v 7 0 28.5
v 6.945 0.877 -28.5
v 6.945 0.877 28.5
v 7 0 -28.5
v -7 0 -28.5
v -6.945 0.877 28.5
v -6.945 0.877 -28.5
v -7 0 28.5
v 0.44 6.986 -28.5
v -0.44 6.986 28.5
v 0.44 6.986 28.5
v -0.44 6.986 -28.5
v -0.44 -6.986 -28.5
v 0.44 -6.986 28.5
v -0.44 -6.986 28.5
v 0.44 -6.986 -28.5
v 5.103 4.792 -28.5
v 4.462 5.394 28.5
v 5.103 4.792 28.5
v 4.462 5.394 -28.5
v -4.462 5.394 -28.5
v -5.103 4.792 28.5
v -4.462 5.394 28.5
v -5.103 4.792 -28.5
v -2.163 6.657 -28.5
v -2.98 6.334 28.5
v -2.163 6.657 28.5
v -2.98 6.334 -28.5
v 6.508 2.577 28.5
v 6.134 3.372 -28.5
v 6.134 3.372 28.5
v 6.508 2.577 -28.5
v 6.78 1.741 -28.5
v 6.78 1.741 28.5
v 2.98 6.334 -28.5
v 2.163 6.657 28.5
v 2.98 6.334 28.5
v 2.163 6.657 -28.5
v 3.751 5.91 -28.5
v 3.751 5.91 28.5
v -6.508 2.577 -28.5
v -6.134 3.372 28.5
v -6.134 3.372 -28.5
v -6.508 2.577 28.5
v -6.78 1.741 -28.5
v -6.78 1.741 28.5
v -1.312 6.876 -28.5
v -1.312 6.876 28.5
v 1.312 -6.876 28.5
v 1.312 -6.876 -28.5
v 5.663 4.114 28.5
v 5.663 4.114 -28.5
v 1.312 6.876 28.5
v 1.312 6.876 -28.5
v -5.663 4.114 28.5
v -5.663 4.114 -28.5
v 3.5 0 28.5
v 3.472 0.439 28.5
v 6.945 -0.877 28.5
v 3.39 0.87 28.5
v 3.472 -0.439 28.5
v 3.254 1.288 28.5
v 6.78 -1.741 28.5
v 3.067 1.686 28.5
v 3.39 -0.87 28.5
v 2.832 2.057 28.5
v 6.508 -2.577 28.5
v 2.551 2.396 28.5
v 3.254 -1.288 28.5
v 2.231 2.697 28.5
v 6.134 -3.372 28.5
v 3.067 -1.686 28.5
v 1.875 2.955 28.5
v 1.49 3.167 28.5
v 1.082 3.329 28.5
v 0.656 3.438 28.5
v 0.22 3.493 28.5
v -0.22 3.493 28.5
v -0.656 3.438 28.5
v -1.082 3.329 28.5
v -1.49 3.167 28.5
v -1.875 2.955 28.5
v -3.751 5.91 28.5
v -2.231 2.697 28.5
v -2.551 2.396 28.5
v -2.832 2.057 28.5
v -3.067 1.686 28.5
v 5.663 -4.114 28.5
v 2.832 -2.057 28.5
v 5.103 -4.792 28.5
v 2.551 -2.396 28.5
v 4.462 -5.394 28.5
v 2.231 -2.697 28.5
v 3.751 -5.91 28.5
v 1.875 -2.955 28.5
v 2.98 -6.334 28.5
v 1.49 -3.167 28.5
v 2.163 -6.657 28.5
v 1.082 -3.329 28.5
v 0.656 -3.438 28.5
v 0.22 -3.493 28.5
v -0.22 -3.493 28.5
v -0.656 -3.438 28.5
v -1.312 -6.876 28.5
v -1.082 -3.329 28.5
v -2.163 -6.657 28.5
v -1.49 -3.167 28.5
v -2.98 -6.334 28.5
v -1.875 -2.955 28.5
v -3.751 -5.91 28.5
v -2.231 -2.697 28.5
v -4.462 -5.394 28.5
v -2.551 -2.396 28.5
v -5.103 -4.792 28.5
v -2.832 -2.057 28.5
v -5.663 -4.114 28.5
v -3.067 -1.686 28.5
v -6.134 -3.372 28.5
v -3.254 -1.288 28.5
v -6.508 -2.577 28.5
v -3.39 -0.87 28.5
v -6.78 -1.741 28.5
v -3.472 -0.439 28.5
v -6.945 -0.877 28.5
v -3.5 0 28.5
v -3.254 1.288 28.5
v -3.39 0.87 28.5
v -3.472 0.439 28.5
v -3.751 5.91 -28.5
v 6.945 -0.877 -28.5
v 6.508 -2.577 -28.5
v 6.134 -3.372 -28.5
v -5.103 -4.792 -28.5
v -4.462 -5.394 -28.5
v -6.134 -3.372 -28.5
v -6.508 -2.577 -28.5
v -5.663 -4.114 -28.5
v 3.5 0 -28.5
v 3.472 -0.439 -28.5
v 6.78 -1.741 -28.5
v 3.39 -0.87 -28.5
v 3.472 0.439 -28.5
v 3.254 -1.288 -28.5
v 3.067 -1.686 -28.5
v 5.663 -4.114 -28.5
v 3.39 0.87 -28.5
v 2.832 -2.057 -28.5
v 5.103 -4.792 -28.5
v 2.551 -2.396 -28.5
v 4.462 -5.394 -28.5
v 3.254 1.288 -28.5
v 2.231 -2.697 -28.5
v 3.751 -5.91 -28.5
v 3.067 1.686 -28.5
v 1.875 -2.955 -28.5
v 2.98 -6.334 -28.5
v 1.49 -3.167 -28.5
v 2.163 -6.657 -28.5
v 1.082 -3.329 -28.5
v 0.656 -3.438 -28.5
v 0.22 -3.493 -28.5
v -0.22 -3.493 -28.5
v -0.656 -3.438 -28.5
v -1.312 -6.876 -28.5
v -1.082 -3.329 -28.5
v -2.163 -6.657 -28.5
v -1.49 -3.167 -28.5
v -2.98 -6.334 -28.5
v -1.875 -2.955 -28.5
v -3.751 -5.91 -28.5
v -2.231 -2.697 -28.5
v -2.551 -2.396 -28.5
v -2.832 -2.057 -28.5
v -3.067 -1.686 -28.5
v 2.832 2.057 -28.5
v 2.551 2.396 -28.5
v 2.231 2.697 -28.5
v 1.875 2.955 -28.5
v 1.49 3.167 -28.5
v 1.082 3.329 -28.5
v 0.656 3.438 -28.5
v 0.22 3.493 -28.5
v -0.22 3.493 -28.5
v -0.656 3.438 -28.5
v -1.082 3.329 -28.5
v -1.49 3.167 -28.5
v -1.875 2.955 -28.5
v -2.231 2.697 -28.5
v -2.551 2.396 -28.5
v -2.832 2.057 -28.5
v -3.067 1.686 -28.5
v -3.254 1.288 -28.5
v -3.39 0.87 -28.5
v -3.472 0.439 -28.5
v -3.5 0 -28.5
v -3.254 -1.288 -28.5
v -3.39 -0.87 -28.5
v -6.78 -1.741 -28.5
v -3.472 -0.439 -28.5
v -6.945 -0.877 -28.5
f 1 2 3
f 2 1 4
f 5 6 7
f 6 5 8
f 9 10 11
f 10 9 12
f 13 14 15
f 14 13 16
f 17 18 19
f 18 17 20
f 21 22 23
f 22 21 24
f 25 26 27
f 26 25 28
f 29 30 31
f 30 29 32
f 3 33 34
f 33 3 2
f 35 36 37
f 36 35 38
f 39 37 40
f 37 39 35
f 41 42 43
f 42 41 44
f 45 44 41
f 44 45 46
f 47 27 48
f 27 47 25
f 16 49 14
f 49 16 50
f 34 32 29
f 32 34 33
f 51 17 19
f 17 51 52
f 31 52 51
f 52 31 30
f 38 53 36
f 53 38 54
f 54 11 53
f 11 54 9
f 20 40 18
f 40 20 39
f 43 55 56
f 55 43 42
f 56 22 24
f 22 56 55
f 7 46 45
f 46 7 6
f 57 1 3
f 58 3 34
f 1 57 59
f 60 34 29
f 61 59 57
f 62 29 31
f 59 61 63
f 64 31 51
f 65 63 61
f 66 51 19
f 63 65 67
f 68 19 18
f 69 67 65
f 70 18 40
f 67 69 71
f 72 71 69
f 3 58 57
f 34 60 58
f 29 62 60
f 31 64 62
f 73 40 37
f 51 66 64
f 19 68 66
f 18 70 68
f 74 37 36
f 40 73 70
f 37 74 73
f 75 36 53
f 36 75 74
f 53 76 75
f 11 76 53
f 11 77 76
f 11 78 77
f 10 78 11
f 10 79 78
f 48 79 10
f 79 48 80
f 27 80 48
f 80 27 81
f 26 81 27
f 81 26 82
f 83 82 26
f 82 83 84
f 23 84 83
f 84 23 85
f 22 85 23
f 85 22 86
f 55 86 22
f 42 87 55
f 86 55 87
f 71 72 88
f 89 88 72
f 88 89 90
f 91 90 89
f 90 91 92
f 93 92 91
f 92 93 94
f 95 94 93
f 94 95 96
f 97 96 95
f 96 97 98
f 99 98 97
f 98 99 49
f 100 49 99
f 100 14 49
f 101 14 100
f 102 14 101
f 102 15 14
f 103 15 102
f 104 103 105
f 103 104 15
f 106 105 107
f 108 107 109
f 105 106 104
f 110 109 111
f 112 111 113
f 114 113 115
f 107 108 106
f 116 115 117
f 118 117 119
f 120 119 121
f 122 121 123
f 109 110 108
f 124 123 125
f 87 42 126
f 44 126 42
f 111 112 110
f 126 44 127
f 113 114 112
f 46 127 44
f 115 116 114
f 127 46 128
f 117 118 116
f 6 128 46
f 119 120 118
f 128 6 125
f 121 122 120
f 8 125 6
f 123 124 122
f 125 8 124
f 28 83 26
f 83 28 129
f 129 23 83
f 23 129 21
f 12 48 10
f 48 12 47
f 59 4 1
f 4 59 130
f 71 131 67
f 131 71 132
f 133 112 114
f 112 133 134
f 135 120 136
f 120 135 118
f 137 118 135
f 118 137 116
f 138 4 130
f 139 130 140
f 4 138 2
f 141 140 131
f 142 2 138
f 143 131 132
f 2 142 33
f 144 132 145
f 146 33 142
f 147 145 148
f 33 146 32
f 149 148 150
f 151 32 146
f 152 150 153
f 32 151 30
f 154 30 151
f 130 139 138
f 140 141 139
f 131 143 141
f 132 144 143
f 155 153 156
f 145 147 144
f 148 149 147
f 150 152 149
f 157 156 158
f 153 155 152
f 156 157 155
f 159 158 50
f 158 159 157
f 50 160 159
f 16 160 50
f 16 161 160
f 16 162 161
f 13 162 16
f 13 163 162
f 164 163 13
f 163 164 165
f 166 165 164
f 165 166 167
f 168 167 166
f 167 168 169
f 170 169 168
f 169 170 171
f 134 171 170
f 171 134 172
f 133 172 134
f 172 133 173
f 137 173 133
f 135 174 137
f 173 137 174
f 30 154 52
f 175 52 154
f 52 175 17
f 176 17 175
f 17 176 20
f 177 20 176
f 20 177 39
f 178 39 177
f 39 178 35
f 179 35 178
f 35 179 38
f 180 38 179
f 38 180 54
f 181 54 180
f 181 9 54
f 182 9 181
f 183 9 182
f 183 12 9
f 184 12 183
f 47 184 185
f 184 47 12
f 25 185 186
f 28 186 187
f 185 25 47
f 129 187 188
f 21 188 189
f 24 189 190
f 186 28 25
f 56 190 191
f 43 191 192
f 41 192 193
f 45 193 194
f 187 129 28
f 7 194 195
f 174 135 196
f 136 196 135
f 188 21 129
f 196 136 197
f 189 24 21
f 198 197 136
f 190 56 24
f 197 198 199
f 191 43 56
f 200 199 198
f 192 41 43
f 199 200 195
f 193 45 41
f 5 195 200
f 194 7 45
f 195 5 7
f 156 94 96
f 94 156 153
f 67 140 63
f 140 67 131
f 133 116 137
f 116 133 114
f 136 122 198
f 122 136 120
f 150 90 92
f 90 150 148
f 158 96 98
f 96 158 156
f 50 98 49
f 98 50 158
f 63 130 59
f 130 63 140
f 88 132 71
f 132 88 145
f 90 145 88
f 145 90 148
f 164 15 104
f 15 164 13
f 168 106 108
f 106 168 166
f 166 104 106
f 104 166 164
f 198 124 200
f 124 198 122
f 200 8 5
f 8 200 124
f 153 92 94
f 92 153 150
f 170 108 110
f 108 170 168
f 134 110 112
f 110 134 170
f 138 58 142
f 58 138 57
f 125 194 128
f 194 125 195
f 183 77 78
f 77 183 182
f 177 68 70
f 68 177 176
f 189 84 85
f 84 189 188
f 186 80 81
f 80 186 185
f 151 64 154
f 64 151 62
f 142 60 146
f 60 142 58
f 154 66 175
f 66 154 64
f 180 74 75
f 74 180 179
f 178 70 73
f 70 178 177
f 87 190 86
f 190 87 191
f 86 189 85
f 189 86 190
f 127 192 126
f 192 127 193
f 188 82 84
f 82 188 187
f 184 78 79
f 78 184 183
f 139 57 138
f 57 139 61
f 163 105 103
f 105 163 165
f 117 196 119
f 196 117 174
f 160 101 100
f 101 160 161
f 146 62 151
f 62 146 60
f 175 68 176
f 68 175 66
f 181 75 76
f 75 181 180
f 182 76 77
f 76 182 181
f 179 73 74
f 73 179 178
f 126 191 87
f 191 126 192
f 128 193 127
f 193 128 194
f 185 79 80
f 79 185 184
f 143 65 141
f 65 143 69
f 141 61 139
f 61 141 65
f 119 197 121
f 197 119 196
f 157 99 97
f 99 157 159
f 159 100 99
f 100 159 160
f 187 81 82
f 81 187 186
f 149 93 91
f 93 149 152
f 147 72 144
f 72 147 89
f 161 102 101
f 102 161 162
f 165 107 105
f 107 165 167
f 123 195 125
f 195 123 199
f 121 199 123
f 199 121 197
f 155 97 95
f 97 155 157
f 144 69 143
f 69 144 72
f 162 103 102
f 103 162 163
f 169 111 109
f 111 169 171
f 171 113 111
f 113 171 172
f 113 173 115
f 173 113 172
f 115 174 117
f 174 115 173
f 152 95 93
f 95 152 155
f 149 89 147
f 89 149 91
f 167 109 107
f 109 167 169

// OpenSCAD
$fn = 50;


difference() {
	union() {
		translate(v = [0, 0, -28.5000000000]) {
			cylinder(h = 57, r = 7.0000000000);
		}
	}
	union() {
		translate(v = [0, 0, -100.0000000000]) {
			cylinder(h = 200, r = 3.5000000000);
		}
	}
}
